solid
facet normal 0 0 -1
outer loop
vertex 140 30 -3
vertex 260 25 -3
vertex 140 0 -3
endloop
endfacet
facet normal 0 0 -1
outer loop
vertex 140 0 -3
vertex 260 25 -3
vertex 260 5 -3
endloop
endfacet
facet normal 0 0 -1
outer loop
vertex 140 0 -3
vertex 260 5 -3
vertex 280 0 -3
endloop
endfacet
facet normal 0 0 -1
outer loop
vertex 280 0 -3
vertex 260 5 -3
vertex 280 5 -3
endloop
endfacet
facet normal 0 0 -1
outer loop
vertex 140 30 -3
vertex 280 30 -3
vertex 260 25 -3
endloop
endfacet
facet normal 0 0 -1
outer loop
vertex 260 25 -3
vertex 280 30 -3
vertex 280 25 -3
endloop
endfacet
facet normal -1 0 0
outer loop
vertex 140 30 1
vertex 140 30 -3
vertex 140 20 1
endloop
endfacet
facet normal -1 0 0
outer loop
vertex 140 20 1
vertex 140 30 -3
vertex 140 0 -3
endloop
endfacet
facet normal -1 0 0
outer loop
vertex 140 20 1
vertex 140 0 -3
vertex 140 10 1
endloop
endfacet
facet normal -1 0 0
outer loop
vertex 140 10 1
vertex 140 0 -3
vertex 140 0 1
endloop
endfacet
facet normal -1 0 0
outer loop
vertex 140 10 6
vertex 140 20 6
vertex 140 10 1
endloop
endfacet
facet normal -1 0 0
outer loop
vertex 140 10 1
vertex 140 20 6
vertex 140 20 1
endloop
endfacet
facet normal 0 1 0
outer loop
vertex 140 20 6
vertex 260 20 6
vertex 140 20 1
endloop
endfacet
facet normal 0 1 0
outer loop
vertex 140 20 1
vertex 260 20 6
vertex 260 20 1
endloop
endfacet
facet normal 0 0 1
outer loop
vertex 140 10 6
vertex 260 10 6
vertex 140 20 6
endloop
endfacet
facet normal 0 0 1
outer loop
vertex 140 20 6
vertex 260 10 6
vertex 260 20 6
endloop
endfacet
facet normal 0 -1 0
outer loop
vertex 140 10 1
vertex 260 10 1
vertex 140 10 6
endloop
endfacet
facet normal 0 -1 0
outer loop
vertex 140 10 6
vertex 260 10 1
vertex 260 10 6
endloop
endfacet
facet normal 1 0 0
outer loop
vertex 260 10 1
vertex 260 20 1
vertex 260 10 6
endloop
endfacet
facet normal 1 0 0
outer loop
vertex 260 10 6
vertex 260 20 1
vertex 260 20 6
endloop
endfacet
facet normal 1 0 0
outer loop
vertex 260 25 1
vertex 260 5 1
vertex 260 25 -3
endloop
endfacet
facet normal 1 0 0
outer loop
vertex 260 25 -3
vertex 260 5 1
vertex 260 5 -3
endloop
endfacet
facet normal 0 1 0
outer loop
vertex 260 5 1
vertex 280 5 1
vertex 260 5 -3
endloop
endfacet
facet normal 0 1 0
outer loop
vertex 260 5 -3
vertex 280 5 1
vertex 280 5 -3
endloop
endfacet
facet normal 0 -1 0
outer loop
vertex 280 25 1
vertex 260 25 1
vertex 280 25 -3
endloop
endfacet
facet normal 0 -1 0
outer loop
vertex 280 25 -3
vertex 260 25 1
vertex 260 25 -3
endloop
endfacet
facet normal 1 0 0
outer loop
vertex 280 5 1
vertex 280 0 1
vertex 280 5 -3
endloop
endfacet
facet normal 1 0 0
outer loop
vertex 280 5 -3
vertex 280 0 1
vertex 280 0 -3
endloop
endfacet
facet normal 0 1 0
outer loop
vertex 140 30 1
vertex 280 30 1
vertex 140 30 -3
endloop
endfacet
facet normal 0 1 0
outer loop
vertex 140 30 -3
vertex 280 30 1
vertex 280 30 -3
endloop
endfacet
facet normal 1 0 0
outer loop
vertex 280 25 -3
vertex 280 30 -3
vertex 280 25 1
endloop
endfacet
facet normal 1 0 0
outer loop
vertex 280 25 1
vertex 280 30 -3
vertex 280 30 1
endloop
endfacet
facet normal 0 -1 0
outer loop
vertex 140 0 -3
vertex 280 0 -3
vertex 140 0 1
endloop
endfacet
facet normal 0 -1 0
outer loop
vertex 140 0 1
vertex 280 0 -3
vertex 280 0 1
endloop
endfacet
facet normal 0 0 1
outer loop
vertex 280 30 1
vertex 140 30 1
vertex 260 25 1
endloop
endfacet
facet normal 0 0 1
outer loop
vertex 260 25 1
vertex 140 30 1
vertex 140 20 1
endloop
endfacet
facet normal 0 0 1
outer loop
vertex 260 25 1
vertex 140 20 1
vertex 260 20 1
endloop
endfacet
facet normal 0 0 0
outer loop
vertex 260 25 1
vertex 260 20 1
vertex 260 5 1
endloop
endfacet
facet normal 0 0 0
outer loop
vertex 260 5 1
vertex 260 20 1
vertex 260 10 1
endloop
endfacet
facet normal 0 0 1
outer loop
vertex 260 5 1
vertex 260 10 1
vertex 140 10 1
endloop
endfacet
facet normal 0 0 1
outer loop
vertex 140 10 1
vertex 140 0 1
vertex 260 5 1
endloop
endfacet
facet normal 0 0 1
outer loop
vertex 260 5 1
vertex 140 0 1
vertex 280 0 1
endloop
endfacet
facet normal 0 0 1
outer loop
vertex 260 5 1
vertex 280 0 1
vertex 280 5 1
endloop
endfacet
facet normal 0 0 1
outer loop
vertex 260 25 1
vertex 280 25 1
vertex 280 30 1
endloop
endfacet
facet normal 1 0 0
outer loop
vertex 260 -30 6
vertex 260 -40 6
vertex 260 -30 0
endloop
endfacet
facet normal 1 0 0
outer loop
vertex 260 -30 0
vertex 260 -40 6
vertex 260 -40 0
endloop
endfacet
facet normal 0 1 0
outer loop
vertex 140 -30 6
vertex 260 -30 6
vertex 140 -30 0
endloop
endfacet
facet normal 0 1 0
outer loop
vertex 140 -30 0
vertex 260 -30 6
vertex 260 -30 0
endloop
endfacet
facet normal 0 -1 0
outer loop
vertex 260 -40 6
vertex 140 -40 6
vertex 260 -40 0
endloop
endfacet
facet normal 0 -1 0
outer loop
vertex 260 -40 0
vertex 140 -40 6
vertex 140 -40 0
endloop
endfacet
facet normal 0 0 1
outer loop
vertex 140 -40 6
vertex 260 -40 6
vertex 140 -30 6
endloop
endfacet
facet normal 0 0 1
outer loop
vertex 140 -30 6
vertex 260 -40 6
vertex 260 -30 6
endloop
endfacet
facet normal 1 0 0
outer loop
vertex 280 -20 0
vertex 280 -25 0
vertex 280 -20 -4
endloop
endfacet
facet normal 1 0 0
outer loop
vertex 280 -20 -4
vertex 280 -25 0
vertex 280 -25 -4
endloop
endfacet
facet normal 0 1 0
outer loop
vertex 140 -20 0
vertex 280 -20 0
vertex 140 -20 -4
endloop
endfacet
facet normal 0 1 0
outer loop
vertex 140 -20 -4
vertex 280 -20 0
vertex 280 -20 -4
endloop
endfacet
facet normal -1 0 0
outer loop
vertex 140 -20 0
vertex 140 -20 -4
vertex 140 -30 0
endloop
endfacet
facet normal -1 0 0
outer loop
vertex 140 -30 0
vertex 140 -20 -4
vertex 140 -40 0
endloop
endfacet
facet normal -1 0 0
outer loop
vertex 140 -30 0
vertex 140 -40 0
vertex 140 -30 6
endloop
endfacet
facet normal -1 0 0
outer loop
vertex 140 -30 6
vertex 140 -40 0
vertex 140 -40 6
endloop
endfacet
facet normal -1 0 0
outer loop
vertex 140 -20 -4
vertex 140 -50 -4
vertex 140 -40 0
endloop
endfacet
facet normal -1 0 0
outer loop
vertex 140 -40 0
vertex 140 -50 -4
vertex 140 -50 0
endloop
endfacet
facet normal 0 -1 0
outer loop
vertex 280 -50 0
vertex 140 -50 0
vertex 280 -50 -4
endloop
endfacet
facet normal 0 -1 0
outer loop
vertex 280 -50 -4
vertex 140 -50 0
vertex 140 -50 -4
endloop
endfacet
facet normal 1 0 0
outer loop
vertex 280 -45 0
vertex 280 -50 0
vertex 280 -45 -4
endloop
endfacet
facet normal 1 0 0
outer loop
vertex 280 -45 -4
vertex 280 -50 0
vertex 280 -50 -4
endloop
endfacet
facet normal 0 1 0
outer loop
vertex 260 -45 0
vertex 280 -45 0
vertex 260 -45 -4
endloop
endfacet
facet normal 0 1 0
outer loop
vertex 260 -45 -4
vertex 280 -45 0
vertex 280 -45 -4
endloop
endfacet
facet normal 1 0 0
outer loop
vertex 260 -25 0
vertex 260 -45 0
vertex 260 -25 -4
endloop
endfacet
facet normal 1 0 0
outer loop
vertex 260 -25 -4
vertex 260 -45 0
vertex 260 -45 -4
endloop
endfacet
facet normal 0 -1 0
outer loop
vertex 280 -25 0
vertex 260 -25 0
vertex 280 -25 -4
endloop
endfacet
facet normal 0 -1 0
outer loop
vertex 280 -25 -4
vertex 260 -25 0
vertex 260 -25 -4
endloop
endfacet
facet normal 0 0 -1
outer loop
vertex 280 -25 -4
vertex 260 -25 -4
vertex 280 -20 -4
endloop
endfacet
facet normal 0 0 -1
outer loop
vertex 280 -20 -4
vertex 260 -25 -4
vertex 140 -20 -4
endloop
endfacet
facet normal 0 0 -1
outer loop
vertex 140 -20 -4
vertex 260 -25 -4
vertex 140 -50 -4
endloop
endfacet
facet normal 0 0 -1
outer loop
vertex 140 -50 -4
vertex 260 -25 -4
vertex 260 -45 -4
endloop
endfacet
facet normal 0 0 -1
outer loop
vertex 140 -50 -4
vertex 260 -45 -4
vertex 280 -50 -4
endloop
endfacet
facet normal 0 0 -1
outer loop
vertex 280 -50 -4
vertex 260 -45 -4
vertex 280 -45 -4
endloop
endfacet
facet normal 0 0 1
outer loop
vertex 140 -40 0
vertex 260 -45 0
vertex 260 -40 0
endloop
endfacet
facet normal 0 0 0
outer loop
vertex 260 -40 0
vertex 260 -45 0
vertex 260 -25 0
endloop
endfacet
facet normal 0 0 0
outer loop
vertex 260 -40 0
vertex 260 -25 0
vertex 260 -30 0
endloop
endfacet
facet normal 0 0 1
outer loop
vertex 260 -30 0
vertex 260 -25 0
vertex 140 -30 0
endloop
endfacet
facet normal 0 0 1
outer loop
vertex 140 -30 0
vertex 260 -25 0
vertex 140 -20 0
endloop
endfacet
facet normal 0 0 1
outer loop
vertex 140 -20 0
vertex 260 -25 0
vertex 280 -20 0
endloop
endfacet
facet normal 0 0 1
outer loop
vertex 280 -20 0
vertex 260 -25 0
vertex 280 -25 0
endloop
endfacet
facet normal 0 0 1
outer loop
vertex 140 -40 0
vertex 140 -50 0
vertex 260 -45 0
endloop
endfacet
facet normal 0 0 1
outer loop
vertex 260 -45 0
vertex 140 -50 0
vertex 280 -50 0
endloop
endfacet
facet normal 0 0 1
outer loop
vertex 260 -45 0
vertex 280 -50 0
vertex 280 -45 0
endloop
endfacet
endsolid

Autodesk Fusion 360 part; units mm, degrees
sketch "Skizze1" plane through (0, 0, 0) normal (0, 0, 1) x (1, 0, 0)
  line L0 (0, 0) -> (280, 0)
  line L1 (280, 0) -> (280, 30)
  line L2 (280, 30) -> (0, 30)
  line L3 (0, 30) -> (0, 0)
  dimension "d1" = 30
  dimension "d2" = 280
extrude "Extrusion1" add sketch "Skizze1" along normal blind 1 makes body 1
sketch "Skizze2" plane through (0, 0, 1) normal (0, 0, 1) x (-1, 0, 0)
  line L0 (0, -30) -> (0, 0)
  line L1 (0, 0) -> (-280, 0)
  line L2 (-280, 0) -> (-280, -30)
  line L3 (-280, -30) -> (0, -30)
  line L4 (0, -25) -> (-20, -25)
  line L5 (-20, -25) -> (-20, -5)
  line L6 (-20, -5) -> (0, -5)
  line L7 (0, -5) -> (0, -25)
  line L8 (-280, -25) -> (-260, -25)
  line L9 (-260, -25) -> (-260, -5)
  line L10 (-260, -5) -> (-280, -5)
  line L11 (-280, -5) -> (-280, -25)
  dimension "d5" = 20
  dimension "d6" = 20
  dimension "d7" = 5
  dimension "d8" = 5
  dimension "d9" = 20
  dimension "d10" = 20
  dimension "d11" = 5
extrude "Extrusion2" cut sketch "Skizze2" against normal blind 10 contours L0 L4 L5 L6 L7 | L2 L8 L9 L10 L11 bodies 1
sketch "Skizze3" plane through (0, 0, 1) normal (0, 0, 1) x (-1, 0, 0)
  line L0 (-260, -25) -> (-280, -25)
  line L1 (-280, -25) -> (-280, -30)
  line L2 (-280, -30) -> (0, -30)
  line L3 (0, -30) -> (0, -25)
  line L4 (0, -25) -> (-20, -25)
  line L5 (-20, -25) -> (-20, -5)
  line L6 (-20, -5) -> (0, -5)
  line L7 (0, -5) -> (0, 0)
  line L8 (0, 0) -> (-280, 0)
  line L9 (-280, 0) -> (-280, -5)
  line L10 (-280, -5) -> (-260, -5)
  line L11 (-260, -5) -> (-260, -25)
  line L12 (-259.9999, -20) -> (-20, -20)
  line L13 (-20, -20) -> (-20, -10)
  line L14 (-20, -10) -> (-259.9999, -10)
  line L15 (-259.9999, -10) -> (-259.9999, -20)
  dimension "d14" = 10
  dimension "d16" = 10
extrude "Extrusion3" add sketch "Skizze3" along normal blind 5 contours L5 L11 L12 L13 L14 L15 bodies 1
sketch "Skizze4" plane through (0, 0, 0) normal (0, 0, -1) x (1, 0, 0)
  line L0 (280, -25) -> (260, -25)
  line L1 (260, -25) -> (260, -5)
  line L2 (260, -5) -> (280, -5)
  line L3 (280, -5) -> (280, 0)
  line L4 (280, 0) -> (0, 0)
  line L5 (0, 0) -> (0, -5)
  line L6 (0, -5) -> (20, -5)
  line L7 (20, -5) -> (20, -25)
  line L8 (20, -25) -> (0, -25)
  line L9 (0, -25) -> (0, -30)
  line L10 (0, -30) -> (280, -30)
  line L11 (280, -30) -> (280, -25)
  line L12 (0, 0) -> (140, 0)
  line L13 (140, 0) -> (140, -30)
  line L14 (140, -30) -> (0, -30)
  line L15 (0, -30) -> (0, 0)
  dimension "d21" = 140
extrude "Extrusion4" cut sketch "Skizze4" against normal blind 15 contours L4 L5 L6 L7 L8 L9 L10 L12 L13 L14 L15 bodies 1
sketch "Skizze5" plane through (0, 0, 0) normal (0, 0, -1) x (1, 0, 0)
  line L0 (140, 0) -> (140, -30)
  line L1 (140, -30) -> (280, -30)
  line L2 (280, -30) -> (280, -25)
  line L3 (280, -25) -> (260, -25)
  line L4 (260, -25) -> (260, -5)
  line L5 (260, -5) -> (280, -5)
  line L6 (280, -5) -> (280, 0)
  line L7 (280, 0) -> (140, 0)
  line L8 (140, 10) -> (285, 10)
  line L9 (285, 10) -> (285, 5)
  line L10 (285, 5) -> (140, 5)
  line L11 (140, 5) -> (140, 10)
  line L12 (280, 45) -> (260, 45)
  line L13 (280, 50) -> (280, 45)
  line L14 (260, 25) -> (280, 25)
  line L15 (140, 50) -> (280, 50)
  line L16 (260, 45) -> (260, 25)
  line L17 (140, 20) -> (140, 50)
  line L18 (280, 20) -> (140, 20)
  line L19 (280, 25) -> (280, 20)
extrude "Extrusion5" add sketch "Skizze5" along normal blind 4 separate body contours L12 L13 L14 L15 L16 L17 L18 L19 makes body 2
extrude "Extrusion6" add 1 faces at (180, 18.3333, 0) along direction (0, 0, -1) blind 3 on bodies 1 bodies 1
sketch "Skizze6" plane through (0, 0, 6) normal (0, 0, 1) x (-1, 0, 0)
  line L0 (-140, -20) -> (-140, -10)
  line L1 (-140, -10) -> (-259.9999, -10)
  line L2 (-259.9999, -10) -> (-259.9999, -20)
  line L3 (-259.9999, -20) -> (-140, -20)
  line L4 (-280, 15) -> (-140, 15)
  line L5 (-140, 15) -> (-140, 9.9999)
  line L6 (-140, 9.9999) -> (-280, 9.9999)
  line L7 (-280, 9.9999) -> (-280, 15)
  line L8 (-140, 29.9999) -> (-259.9999, 29.9999)
  line L9 (-259.9999, 29.9999) -> (-259.9999, 39.9999)
  line L10 (-259.9999, 39.9999) -> (-140, 39.9999)
  line L11 (-140, 39.9999) -> (-140, 29.9999)
extrude "Extrusion7" add sketch "Skizze6" against normal blind 6 contours L8 L9 L10 L11 bodies 2
